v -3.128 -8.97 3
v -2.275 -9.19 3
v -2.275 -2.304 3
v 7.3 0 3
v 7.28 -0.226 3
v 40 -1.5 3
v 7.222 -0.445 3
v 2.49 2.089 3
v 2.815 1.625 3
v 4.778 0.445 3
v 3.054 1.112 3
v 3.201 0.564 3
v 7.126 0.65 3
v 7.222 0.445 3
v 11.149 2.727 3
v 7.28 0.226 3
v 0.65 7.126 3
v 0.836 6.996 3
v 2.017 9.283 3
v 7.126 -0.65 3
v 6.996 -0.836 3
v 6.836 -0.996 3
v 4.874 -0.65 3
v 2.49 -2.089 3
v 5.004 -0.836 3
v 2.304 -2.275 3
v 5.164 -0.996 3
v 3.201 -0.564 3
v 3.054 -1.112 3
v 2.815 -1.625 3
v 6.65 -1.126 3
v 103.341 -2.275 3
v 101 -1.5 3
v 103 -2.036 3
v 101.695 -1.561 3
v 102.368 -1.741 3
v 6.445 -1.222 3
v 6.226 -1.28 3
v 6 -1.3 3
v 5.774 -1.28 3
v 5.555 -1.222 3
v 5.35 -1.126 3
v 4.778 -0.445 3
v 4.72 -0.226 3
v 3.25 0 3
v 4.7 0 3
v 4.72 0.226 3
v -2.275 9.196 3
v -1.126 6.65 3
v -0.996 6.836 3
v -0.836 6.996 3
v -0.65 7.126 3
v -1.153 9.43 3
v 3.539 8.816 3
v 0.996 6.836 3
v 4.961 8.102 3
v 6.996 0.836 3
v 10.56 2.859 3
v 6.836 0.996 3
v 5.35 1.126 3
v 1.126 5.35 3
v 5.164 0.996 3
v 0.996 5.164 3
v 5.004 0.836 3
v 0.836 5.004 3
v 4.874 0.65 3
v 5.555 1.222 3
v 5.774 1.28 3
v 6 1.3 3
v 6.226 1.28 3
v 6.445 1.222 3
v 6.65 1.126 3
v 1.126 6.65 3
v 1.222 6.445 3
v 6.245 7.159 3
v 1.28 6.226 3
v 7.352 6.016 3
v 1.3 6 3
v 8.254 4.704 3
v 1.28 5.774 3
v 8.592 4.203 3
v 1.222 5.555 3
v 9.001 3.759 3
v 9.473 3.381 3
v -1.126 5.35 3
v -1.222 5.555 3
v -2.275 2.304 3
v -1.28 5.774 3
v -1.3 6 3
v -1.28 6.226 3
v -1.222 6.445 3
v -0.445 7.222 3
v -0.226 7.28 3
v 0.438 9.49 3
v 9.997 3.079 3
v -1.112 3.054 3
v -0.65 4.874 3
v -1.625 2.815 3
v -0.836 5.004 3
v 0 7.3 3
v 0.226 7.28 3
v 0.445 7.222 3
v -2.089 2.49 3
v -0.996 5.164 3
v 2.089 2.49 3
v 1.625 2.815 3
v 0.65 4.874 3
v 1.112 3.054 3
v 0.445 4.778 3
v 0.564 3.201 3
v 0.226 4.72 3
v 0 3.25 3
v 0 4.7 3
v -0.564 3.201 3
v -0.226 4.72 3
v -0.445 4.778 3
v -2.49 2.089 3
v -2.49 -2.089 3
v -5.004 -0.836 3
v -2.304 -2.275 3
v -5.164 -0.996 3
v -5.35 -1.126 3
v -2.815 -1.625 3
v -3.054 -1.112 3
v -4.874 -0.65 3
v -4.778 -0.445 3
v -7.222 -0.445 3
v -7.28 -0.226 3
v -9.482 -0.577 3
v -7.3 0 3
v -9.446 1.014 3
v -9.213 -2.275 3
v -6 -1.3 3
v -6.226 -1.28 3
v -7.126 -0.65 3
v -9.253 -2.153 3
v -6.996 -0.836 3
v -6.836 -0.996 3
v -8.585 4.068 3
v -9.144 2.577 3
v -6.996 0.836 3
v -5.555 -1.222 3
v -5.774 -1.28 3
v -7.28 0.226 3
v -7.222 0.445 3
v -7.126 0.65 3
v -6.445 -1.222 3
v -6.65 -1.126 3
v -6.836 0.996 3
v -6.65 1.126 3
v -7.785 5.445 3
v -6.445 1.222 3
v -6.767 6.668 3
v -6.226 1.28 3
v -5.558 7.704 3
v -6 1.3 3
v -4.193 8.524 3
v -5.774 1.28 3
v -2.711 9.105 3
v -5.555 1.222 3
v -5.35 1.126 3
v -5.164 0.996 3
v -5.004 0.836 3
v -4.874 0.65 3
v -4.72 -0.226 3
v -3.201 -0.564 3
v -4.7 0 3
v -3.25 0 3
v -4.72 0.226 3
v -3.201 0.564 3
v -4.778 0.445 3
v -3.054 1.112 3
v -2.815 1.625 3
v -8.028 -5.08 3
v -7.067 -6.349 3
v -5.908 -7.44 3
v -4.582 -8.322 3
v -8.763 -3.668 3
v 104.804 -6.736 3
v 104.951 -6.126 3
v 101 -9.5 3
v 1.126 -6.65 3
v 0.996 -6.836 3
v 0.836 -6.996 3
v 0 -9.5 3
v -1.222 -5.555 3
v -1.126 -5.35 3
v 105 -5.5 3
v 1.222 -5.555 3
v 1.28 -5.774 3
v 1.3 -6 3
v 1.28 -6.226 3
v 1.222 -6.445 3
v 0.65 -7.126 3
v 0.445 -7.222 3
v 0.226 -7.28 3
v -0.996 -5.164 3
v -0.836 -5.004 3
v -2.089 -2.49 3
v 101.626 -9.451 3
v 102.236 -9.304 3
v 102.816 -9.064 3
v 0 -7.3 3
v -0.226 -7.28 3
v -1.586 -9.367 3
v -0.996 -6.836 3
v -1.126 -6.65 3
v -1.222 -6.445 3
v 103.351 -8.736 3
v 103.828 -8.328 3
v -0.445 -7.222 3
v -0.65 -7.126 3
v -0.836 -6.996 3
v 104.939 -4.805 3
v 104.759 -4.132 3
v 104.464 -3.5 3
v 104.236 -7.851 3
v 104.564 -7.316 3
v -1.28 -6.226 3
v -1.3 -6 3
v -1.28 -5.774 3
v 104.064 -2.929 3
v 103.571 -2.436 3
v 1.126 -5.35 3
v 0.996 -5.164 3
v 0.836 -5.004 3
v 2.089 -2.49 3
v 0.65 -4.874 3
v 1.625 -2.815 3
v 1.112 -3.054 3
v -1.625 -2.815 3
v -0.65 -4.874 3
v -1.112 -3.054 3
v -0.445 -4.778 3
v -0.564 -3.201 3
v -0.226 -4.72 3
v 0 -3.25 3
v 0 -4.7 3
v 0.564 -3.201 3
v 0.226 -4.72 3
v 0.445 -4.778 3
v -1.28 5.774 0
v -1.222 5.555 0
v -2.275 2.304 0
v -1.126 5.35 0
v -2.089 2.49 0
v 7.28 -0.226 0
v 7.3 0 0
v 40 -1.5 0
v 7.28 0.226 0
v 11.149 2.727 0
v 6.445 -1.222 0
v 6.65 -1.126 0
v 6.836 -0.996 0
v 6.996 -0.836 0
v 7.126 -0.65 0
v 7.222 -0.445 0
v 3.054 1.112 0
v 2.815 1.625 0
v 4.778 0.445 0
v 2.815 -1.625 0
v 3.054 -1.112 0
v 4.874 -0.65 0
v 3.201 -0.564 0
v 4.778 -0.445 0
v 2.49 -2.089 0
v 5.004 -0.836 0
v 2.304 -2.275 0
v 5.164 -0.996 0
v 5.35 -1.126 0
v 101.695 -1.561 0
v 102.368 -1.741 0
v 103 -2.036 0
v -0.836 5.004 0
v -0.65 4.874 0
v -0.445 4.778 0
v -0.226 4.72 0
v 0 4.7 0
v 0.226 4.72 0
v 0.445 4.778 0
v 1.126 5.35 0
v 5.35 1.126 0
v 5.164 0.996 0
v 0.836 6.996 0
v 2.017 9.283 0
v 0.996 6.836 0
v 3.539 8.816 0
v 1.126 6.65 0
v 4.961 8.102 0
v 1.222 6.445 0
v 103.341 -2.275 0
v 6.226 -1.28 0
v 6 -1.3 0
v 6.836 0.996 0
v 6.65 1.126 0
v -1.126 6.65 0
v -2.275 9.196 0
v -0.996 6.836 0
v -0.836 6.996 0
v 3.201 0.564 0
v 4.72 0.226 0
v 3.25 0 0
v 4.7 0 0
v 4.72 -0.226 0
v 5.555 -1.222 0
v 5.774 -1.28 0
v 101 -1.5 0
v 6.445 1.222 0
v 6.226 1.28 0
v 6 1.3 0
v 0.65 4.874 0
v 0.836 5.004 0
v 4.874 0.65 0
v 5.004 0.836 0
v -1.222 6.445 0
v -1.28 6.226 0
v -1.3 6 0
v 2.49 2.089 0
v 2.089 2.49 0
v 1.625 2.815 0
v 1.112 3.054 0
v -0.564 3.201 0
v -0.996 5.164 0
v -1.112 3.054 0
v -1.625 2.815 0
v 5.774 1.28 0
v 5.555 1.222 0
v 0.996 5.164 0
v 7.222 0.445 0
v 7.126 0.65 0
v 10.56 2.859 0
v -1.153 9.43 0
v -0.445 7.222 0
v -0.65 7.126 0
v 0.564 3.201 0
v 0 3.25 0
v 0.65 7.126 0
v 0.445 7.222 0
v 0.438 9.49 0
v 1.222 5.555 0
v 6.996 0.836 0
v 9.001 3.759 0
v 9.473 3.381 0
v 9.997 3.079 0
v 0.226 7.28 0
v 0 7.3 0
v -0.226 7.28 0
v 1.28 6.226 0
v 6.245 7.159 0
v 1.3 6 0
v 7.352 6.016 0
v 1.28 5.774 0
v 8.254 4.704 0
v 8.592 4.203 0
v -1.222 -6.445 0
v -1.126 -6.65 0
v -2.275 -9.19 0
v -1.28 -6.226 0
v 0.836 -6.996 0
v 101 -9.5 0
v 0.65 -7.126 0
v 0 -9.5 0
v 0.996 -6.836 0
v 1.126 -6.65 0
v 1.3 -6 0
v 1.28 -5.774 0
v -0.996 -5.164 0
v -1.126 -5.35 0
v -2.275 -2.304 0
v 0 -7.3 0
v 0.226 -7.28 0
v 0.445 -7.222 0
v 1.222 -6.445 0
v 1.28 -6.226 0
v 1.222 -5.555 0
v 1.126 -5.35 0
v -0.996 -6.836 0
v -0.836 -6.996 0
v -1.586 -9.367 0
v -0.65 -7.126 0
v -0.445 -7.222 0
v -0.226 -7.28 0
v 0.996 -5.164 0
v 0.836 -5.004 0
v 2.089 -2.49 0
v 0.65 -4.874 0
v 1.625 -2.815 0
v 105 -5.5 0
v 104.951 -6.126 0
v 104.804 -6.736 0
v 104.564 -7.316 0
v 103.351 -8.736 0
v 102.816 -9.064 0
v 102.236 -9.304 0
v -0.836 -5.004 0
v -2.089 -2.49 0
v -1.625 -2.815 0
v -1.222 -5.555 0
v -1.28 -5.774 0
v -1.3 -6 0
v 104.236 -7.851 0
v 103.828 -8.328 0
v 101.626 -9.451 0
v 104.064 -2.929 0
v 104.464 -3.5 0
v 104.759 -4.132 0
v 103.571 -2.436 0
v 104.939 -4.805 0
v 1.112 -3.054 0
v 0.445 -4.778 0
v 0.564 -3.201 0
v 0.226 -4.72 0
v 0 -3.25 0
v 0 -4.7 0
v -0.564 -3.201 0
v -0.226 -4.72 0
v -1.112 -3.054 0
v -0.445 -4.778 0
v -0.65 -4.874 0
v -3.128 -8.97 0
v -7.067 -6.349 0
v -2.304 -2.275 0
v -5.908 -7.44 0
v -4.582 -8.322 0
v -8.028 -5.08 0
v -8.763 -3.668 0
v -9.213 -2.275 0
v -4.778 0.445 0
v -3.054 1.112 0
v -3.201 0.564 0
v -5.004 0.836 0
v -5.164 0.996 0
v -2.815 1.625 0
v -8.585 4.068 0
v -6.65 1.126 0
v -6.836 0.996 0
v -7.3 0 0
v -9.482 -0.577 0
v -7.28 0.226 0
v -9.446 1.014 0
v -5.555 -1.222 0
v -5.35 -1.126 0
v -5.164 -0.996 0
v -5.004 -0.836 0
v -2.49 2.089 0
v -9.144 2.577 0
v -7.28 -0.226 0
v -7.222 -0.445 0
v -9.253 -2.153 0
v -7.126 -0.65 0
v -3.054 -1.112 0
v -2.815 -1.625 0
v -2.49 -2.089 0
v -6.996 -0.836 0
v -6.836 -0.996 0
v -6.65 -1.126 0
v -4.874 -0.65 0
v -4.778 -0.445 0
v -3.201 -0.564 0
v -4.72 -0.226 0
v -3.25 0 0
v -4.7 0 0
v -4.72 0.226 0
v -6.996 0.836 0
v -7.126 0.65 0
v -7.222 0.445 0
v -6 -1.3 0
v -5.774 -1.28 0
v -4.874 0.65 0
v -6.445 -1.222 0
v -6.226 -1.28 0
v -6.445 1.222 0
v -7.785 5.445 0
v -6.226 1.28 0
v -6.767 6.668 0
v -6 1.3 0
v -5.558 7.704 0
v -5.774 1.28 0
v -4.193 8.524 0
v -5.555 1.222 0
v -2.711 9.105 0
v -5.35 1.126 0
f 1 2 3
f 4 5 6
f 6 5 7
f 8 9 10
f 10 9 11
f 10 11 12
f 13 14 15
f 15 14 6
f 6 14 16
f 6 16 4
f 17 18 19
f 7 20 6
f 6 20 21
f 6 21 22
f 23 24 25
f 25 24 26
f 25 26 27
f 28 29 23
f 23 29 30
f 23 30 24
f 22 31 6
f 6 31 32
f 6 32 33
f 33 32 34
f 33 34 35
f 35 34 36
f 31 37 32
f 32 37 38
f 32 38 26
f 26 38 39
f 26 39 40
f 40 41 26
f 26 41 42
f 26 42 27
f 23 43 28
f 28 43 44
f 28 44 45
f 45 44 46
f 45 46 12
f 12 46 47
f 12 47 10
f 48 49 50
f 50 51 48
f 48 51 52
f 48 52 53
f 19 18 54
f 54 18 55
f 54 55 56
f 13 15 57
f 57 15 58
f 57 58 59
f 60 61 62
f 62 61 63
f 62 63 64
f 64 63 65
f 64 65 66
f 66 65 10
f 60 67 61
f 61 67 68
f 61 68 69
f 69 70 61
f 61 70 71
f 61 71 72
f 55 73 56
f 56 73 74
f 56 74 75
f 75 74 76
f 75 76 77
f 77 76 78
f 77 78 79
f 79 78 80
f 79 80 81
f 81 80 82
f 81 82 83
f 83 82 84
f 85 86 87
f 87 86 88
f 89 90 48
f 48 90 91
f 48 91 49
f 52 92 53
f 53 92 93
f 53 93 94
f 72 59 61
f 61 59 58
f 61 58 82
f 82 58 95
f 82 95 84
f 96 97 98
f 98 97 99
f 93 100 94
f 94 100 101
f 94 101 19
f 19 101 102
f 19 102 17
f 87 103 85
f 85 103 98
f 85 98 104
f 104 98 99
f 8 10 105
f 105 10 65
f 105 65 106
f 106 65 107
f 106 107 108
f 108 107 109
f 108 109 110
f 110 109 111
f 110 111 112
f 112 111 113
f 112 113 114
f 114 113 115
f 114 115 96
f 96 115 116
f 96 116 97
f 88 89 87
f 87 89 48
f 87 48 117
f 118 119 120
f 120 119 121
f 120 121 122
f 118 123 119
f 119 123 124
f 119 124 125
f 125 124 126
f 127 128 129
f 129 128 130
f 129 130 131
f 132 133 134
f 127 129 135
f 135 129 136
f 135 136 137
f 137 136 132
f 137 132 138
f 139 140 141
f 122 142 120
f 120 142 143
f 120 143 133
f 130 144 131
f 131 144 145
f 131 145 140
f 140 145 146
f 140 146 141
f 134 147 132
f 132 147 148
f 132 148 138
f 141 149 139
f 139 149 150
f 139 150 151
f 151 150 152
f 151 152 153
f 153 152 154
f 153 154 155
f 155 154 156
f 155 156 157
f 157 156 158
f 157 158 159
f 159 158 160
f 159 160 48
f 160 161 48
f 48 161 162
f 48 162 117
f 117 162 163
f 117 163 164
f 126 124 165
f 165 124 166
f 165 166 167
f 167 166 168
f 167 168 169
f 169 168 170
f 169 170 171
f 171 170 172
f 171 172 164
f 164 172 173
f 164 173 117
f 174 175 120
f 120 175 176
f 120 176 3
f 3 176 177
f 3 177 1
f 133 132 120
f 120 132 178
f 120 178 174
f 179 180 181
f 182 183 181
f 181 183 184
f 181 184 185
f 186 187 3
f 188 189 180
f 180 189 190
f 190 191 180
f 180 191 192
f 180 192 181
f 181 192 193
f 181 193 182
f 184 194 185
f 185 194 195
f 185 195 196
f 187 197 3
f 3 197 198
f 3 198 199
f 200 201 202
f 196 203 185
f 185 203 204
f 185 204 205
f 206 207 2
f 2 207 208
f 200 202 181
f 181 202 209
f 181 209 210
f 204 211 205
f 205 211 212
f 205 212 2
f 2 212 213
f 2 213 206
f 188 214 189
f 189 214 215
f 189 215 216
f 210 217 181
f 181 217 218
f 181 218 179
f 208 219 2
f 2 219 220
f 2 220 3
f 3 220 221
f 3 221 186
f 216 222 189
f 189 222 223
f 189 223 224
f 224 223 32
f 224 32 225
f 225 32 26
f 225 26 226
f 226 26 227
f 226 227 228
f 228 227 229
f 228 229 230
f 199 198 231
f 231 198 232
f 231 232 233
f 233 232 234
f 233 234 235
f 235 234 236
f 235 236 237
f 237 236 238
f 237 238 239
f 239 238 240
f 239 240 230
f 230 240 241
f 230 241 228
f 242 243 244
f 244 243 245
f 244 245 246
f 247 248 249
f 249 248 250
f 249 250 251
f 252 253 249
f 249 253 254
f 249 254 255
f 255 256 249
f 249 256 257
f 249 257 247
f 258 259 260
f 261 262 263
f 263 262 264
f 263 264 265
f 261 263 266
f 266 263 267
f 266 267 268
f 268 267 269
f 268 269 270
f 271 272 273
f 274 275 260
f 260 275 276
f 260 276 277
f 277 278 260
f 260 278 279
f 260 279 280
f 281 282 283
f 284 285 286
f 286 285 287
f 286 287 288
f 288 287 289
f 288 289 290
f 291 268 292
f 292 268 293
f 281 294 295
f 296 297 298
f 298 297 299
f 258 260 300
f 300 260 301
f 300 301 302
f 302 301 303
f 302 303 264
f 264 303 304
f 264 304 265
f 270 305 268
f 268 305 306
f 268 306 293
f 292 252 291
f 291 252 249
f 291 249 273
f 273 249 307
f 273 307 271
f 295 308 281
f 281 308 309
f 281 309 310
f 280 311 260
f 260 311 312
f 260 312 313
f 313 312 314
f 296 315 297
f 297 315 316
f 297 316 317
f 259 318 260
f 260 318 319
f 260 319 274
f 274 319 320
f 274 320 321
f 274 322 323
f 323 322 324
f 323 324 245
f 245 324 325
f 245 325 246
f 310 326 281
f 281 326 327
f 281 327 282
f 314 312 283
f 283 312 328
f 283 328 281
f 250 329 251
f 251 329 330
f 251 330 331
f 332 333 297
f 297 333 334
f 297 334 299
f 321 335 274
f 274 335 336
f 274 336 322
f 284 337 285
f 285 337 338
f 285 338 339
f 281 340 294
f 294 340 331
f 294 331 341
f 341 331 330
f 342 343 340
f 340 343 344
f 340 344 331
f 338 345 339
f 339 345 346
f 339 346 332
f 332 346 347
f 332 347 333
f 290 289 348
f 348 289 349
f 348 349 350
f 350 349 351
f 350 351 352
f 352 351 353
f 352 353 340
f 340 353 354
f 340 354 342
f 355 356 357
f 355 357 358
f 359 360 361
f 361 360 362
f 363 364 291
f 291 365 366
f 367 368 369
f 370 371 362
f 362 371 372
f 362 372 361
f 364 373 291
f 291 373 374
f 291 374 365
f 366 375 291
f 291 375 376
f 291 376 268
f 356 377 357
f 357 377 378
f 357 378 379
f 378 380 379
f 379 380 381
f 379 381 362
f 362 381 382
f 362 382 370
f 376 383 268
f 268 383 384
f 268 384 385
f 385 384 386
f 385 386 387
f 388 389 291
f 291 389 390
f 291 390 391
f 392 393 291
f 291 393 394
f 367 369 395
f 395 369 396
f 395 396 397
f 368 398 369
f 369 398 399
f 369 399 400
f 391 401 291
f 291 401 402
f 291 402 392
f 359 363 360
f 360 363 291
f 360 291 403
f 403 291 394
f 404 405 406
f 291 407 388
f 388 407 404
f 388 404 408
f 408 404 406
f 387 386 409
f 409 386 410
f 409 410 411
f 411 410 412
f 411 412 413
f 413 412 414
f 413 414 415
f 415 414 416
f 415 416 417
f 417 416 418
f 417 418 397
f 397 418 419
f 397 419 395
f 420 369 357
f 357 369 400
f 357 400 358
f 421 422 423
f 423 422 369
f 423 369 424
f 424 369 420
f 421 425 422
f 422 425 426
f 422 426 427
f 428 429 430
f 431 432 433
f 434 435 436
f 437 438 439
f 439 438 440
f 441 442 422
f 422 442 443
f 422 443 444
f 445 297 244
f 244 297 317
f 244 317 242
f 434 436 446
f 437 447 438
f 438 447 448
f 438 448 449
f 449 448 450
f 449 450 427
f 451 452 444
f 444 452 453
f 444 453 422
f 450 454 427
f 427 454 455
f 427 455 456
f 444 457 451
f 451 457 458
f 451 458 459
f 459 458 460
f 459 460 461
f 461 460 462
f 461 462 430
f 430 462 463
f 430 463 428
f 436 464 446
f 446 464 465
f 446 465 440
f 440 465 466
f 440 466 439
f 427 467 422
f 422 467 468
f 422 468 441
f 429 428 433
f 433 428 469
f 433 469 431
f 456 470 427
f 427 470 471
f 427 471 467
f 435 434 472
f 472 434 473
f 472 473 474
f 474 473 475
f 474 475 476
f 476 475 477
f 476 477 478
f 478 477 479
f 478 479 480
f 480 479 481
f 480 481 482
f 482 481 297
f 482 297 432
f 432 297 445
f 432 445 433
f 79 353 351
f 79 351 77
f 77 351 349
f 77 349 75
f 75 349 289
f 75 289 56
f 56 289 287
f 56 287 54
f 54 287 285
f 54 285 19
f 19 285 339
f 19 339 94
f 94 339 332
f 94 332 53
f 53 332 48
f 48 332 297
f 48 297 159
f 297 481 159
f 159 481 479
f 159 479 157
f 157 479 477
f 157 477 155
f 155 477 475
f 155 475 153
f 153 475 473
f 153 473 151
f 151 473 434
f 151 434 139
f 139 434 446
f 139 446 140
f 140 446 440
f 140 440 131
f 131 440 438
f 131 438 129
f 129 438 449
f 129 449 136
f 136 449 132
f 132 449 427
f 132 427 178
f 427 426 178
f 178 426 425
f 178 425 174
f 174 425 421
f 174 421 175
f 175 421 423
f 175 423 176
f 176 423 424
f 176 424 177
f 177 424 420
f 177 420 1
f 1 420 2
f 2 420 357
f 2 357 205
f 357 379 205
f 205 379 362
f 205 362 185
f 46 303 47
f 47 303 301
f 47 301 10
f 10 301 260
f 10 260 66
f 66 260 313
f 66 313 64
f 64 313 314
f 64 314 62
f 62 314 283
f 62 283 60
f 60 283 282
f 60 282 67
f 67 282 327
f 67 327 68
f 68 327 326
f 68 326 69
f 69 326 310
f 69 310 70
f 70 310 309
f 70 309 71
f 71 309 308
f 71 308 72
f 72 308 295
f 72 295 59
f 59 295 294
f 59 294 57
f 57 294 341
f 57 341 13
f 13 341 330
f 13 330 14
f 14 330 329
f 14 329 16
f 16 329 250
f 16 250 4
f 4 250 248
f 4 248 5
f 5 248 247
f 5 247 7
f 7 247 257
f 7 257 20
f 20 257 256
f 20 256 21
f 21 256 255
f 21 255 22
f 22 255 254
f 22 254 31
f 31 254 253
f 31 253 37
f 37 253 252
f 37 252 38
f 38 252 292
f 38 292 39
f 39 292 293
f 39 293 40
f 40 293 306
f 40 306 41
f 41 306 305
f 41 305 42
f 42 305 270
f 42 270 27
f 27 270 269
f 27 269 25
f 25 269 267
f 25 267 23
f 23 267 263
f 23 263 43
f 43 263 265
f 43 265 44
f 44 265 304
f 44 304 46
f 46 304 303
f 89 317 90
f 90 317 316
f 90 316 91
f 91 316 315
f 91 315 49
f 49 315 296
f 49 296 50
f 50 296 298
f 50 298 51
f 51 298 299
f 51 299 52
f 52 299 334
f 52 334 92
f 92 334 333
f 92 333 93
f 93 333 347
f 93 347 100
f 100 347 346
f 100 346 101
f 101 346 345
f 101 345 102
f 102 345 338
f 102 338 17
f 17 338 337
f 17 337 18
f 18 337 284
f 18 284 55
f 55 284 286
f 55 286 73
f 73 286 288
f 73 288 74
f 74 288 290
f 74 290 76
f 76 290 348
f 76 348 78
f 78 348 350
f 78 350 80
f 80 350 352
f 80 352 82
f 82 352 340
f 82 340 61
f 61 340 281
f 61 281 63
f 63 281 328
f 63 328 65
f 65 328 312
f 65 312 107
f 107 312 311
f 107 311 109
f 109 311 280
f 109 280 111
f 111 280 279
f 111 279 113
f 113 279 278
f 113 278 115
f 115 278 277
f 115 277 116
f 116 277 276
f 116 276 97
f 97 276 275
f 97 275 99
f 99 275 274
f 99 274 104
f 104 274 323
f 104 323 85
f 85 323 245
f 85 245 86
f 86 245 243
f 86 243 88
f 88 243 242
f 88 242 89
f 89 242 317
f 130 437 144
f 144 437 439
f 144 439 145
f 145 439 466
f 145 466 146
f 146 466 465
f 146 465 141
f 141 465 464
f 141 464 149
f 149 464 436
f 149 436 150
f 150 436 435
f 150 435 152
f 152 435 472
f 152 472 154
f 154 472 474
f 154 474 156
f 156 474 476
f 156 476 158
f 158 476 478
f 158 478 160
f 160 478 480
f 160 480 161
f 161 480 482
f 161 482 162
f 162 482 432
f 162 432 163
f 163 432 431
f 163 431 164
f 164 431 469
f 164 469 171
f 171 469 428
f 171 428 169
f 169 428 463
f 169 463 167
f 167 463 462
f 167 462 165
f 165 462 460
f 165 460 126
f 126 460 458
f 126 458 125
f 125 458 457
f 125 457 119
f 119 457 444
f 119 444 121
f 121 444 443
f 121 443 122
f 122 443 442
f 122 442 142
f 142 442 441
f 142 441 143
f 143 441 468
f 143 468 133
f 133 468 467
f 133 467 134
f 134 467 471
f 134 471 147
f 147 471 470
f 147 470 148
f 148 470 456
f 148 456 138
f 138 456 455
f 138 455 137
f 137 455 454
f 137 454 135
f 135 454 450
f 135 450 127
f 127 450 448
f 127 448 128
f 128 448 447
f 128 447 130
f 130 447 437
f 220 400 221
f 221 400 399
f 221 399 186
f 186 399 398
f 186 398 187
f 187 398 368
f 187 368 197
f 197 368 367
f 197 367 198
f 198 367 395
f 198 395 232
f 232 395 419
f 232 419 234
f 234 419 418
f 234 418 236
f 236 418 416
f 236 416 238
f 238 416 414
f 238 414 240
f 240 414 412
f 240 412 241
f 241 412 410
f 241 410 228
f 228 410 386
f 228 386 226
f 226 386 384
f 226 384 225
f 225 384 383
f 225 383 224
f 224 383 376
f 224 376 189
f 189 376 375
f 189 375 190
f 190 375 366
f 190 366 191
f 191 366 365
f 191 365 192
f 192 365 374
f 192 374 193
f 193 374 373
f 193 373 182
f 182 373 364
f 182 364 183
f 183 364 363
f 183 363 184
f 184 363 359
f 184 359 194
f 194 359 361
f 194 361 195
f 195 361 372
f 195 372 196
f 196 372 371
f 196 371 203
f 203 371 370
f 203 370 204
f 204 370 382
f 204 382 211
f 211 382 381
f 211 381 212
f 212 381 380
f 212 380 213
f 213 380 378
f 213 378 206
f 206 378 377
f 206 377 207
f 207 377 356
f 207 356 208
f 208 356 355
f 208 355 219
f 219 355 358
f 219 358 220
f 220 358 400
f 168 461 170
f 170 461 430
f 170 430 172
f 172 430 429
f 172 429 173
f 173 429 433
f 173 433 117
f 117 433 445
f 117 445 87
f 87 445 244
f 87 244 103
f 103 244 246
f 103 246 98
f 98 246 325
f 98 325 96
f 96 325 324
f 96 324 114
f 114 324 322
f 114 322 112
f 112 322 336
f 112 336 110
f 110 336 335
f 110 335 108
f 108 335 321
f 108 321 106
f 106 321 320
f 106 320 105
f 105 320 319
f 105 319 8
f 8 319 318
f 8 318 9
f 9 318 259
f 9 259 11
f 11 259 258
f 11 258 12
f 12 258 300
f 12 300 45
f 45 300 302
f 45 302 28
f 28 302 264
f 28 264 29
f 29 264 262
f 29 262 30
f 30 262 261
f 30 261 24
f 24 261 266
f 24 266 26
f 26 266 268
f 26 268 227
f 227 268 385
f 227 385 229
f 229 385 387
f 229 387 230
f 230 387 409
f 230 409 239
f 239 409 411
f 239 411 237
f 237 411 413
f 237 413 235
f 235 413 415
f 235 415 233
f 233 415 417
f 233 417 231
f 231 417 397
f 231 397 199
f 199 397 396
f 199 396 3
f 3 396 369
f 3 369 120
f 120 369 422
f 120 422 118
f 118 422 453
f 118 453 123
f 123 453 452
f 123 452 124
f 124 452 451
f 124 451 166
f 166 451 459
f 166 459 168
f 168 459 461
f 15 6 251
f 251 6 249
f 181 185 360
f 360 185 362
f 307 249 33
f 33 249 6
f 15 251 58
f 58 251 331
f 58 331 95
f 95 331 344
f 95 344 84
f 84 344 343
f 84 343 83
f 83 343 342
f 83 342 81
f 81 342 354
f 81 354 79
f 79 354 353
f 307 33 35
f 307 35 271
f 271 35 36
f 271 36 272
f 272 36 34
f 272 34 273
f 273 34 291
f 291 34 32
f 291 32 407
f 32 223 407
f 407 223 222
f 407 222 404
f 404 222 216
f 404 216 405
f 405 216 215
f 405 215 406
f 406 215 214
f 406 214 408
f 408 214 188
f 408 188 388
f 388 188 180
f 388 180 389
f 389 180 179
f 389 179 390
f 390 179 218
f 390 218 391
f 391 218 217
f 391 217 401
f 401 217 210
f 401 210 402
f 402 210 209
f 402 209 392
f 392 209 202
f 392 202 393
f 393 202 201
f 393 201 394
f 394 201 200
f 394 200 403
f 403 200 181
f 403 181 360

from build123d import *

# Parameters (mm, degrees)
ESQUISSE1_R        = 9.5
ESQUISSE1_R_2      = 1.3
ESQUISSE1_R_3      = 3.25
BOSS_EXTRU_1_DEPTH = 3
BOSS_EXTRU_2_DEPTH = 3
ESQUISSE3_W        = 65
ESQUISSE3_H        = 8
BOSS_EXTRU_3_DEPTH = 3
CONG_1_R           = 4


with BuildPart() as part:
    # Esquisse1 → Boss.-Extru.1 (new body)
    with BuildSketch(Plane.XY):
        Circle(ESQUISSE1_R)
        with Locations((6, 0)):
            Circle(ESQUISSE1_R_2, mode=Mode.SUBTRACT)
        with Locations((0, 6)):
            Circle(ESQUISSE1_R_2, mode=Mode.SUBTRACT)
        with Locations(Location((-6, 0, 0), (0, 0, 180))):
            Circle(ESQUISSE1_R_2, mode=Mode.SUBTRACT)
        with Locations(Location((0, -6, 0), (0, 0, 180))):
            Circle(ESQUISSE1_R_2, mode=Mode.SUBTRACT)
        Circle(ESQUISSE1_R_3, mode=Mode.SUBTRACT)
    extrude(amount=BOSS_EXTRU_1_DEPTH)

    # Esquisse2 → Boss.-Extru.2 (add)
    with BuildSketch(Plane.XY.offset(3)):
        Polygon((0, -9.5), (40, -9.5), (40, -1.5), (9, 3.041381265), (9, -0.5), align=None)
    extrude(amount=-BOSS_EXTRU_2_DEPTH)

    # Esquisse3 → Boss.-Extru.3 (add)
    with BuildSketch(Plane.XY.offset(3)):
        with Locations((72.5, -5.5)):
            Rectangle(ESQUISSE3_W, ESQUISSE3_H)
    extrude(amount=-BOSS_EXTRU_3_DEPTH)

    # Congé1
    cong_1_edges = [part.edges().sort_by_distance(p)[0] for p in [
        (9, 3.041381265, 1.5),
        (105, -9.5, 1.5),
        (105, -1.5, 1.5),
    ]]
    fillet(cong_1_edges, radius=CONG_1_R - 0.0001)  # a hair under: the kernel refuses the full size


solid = part.part
